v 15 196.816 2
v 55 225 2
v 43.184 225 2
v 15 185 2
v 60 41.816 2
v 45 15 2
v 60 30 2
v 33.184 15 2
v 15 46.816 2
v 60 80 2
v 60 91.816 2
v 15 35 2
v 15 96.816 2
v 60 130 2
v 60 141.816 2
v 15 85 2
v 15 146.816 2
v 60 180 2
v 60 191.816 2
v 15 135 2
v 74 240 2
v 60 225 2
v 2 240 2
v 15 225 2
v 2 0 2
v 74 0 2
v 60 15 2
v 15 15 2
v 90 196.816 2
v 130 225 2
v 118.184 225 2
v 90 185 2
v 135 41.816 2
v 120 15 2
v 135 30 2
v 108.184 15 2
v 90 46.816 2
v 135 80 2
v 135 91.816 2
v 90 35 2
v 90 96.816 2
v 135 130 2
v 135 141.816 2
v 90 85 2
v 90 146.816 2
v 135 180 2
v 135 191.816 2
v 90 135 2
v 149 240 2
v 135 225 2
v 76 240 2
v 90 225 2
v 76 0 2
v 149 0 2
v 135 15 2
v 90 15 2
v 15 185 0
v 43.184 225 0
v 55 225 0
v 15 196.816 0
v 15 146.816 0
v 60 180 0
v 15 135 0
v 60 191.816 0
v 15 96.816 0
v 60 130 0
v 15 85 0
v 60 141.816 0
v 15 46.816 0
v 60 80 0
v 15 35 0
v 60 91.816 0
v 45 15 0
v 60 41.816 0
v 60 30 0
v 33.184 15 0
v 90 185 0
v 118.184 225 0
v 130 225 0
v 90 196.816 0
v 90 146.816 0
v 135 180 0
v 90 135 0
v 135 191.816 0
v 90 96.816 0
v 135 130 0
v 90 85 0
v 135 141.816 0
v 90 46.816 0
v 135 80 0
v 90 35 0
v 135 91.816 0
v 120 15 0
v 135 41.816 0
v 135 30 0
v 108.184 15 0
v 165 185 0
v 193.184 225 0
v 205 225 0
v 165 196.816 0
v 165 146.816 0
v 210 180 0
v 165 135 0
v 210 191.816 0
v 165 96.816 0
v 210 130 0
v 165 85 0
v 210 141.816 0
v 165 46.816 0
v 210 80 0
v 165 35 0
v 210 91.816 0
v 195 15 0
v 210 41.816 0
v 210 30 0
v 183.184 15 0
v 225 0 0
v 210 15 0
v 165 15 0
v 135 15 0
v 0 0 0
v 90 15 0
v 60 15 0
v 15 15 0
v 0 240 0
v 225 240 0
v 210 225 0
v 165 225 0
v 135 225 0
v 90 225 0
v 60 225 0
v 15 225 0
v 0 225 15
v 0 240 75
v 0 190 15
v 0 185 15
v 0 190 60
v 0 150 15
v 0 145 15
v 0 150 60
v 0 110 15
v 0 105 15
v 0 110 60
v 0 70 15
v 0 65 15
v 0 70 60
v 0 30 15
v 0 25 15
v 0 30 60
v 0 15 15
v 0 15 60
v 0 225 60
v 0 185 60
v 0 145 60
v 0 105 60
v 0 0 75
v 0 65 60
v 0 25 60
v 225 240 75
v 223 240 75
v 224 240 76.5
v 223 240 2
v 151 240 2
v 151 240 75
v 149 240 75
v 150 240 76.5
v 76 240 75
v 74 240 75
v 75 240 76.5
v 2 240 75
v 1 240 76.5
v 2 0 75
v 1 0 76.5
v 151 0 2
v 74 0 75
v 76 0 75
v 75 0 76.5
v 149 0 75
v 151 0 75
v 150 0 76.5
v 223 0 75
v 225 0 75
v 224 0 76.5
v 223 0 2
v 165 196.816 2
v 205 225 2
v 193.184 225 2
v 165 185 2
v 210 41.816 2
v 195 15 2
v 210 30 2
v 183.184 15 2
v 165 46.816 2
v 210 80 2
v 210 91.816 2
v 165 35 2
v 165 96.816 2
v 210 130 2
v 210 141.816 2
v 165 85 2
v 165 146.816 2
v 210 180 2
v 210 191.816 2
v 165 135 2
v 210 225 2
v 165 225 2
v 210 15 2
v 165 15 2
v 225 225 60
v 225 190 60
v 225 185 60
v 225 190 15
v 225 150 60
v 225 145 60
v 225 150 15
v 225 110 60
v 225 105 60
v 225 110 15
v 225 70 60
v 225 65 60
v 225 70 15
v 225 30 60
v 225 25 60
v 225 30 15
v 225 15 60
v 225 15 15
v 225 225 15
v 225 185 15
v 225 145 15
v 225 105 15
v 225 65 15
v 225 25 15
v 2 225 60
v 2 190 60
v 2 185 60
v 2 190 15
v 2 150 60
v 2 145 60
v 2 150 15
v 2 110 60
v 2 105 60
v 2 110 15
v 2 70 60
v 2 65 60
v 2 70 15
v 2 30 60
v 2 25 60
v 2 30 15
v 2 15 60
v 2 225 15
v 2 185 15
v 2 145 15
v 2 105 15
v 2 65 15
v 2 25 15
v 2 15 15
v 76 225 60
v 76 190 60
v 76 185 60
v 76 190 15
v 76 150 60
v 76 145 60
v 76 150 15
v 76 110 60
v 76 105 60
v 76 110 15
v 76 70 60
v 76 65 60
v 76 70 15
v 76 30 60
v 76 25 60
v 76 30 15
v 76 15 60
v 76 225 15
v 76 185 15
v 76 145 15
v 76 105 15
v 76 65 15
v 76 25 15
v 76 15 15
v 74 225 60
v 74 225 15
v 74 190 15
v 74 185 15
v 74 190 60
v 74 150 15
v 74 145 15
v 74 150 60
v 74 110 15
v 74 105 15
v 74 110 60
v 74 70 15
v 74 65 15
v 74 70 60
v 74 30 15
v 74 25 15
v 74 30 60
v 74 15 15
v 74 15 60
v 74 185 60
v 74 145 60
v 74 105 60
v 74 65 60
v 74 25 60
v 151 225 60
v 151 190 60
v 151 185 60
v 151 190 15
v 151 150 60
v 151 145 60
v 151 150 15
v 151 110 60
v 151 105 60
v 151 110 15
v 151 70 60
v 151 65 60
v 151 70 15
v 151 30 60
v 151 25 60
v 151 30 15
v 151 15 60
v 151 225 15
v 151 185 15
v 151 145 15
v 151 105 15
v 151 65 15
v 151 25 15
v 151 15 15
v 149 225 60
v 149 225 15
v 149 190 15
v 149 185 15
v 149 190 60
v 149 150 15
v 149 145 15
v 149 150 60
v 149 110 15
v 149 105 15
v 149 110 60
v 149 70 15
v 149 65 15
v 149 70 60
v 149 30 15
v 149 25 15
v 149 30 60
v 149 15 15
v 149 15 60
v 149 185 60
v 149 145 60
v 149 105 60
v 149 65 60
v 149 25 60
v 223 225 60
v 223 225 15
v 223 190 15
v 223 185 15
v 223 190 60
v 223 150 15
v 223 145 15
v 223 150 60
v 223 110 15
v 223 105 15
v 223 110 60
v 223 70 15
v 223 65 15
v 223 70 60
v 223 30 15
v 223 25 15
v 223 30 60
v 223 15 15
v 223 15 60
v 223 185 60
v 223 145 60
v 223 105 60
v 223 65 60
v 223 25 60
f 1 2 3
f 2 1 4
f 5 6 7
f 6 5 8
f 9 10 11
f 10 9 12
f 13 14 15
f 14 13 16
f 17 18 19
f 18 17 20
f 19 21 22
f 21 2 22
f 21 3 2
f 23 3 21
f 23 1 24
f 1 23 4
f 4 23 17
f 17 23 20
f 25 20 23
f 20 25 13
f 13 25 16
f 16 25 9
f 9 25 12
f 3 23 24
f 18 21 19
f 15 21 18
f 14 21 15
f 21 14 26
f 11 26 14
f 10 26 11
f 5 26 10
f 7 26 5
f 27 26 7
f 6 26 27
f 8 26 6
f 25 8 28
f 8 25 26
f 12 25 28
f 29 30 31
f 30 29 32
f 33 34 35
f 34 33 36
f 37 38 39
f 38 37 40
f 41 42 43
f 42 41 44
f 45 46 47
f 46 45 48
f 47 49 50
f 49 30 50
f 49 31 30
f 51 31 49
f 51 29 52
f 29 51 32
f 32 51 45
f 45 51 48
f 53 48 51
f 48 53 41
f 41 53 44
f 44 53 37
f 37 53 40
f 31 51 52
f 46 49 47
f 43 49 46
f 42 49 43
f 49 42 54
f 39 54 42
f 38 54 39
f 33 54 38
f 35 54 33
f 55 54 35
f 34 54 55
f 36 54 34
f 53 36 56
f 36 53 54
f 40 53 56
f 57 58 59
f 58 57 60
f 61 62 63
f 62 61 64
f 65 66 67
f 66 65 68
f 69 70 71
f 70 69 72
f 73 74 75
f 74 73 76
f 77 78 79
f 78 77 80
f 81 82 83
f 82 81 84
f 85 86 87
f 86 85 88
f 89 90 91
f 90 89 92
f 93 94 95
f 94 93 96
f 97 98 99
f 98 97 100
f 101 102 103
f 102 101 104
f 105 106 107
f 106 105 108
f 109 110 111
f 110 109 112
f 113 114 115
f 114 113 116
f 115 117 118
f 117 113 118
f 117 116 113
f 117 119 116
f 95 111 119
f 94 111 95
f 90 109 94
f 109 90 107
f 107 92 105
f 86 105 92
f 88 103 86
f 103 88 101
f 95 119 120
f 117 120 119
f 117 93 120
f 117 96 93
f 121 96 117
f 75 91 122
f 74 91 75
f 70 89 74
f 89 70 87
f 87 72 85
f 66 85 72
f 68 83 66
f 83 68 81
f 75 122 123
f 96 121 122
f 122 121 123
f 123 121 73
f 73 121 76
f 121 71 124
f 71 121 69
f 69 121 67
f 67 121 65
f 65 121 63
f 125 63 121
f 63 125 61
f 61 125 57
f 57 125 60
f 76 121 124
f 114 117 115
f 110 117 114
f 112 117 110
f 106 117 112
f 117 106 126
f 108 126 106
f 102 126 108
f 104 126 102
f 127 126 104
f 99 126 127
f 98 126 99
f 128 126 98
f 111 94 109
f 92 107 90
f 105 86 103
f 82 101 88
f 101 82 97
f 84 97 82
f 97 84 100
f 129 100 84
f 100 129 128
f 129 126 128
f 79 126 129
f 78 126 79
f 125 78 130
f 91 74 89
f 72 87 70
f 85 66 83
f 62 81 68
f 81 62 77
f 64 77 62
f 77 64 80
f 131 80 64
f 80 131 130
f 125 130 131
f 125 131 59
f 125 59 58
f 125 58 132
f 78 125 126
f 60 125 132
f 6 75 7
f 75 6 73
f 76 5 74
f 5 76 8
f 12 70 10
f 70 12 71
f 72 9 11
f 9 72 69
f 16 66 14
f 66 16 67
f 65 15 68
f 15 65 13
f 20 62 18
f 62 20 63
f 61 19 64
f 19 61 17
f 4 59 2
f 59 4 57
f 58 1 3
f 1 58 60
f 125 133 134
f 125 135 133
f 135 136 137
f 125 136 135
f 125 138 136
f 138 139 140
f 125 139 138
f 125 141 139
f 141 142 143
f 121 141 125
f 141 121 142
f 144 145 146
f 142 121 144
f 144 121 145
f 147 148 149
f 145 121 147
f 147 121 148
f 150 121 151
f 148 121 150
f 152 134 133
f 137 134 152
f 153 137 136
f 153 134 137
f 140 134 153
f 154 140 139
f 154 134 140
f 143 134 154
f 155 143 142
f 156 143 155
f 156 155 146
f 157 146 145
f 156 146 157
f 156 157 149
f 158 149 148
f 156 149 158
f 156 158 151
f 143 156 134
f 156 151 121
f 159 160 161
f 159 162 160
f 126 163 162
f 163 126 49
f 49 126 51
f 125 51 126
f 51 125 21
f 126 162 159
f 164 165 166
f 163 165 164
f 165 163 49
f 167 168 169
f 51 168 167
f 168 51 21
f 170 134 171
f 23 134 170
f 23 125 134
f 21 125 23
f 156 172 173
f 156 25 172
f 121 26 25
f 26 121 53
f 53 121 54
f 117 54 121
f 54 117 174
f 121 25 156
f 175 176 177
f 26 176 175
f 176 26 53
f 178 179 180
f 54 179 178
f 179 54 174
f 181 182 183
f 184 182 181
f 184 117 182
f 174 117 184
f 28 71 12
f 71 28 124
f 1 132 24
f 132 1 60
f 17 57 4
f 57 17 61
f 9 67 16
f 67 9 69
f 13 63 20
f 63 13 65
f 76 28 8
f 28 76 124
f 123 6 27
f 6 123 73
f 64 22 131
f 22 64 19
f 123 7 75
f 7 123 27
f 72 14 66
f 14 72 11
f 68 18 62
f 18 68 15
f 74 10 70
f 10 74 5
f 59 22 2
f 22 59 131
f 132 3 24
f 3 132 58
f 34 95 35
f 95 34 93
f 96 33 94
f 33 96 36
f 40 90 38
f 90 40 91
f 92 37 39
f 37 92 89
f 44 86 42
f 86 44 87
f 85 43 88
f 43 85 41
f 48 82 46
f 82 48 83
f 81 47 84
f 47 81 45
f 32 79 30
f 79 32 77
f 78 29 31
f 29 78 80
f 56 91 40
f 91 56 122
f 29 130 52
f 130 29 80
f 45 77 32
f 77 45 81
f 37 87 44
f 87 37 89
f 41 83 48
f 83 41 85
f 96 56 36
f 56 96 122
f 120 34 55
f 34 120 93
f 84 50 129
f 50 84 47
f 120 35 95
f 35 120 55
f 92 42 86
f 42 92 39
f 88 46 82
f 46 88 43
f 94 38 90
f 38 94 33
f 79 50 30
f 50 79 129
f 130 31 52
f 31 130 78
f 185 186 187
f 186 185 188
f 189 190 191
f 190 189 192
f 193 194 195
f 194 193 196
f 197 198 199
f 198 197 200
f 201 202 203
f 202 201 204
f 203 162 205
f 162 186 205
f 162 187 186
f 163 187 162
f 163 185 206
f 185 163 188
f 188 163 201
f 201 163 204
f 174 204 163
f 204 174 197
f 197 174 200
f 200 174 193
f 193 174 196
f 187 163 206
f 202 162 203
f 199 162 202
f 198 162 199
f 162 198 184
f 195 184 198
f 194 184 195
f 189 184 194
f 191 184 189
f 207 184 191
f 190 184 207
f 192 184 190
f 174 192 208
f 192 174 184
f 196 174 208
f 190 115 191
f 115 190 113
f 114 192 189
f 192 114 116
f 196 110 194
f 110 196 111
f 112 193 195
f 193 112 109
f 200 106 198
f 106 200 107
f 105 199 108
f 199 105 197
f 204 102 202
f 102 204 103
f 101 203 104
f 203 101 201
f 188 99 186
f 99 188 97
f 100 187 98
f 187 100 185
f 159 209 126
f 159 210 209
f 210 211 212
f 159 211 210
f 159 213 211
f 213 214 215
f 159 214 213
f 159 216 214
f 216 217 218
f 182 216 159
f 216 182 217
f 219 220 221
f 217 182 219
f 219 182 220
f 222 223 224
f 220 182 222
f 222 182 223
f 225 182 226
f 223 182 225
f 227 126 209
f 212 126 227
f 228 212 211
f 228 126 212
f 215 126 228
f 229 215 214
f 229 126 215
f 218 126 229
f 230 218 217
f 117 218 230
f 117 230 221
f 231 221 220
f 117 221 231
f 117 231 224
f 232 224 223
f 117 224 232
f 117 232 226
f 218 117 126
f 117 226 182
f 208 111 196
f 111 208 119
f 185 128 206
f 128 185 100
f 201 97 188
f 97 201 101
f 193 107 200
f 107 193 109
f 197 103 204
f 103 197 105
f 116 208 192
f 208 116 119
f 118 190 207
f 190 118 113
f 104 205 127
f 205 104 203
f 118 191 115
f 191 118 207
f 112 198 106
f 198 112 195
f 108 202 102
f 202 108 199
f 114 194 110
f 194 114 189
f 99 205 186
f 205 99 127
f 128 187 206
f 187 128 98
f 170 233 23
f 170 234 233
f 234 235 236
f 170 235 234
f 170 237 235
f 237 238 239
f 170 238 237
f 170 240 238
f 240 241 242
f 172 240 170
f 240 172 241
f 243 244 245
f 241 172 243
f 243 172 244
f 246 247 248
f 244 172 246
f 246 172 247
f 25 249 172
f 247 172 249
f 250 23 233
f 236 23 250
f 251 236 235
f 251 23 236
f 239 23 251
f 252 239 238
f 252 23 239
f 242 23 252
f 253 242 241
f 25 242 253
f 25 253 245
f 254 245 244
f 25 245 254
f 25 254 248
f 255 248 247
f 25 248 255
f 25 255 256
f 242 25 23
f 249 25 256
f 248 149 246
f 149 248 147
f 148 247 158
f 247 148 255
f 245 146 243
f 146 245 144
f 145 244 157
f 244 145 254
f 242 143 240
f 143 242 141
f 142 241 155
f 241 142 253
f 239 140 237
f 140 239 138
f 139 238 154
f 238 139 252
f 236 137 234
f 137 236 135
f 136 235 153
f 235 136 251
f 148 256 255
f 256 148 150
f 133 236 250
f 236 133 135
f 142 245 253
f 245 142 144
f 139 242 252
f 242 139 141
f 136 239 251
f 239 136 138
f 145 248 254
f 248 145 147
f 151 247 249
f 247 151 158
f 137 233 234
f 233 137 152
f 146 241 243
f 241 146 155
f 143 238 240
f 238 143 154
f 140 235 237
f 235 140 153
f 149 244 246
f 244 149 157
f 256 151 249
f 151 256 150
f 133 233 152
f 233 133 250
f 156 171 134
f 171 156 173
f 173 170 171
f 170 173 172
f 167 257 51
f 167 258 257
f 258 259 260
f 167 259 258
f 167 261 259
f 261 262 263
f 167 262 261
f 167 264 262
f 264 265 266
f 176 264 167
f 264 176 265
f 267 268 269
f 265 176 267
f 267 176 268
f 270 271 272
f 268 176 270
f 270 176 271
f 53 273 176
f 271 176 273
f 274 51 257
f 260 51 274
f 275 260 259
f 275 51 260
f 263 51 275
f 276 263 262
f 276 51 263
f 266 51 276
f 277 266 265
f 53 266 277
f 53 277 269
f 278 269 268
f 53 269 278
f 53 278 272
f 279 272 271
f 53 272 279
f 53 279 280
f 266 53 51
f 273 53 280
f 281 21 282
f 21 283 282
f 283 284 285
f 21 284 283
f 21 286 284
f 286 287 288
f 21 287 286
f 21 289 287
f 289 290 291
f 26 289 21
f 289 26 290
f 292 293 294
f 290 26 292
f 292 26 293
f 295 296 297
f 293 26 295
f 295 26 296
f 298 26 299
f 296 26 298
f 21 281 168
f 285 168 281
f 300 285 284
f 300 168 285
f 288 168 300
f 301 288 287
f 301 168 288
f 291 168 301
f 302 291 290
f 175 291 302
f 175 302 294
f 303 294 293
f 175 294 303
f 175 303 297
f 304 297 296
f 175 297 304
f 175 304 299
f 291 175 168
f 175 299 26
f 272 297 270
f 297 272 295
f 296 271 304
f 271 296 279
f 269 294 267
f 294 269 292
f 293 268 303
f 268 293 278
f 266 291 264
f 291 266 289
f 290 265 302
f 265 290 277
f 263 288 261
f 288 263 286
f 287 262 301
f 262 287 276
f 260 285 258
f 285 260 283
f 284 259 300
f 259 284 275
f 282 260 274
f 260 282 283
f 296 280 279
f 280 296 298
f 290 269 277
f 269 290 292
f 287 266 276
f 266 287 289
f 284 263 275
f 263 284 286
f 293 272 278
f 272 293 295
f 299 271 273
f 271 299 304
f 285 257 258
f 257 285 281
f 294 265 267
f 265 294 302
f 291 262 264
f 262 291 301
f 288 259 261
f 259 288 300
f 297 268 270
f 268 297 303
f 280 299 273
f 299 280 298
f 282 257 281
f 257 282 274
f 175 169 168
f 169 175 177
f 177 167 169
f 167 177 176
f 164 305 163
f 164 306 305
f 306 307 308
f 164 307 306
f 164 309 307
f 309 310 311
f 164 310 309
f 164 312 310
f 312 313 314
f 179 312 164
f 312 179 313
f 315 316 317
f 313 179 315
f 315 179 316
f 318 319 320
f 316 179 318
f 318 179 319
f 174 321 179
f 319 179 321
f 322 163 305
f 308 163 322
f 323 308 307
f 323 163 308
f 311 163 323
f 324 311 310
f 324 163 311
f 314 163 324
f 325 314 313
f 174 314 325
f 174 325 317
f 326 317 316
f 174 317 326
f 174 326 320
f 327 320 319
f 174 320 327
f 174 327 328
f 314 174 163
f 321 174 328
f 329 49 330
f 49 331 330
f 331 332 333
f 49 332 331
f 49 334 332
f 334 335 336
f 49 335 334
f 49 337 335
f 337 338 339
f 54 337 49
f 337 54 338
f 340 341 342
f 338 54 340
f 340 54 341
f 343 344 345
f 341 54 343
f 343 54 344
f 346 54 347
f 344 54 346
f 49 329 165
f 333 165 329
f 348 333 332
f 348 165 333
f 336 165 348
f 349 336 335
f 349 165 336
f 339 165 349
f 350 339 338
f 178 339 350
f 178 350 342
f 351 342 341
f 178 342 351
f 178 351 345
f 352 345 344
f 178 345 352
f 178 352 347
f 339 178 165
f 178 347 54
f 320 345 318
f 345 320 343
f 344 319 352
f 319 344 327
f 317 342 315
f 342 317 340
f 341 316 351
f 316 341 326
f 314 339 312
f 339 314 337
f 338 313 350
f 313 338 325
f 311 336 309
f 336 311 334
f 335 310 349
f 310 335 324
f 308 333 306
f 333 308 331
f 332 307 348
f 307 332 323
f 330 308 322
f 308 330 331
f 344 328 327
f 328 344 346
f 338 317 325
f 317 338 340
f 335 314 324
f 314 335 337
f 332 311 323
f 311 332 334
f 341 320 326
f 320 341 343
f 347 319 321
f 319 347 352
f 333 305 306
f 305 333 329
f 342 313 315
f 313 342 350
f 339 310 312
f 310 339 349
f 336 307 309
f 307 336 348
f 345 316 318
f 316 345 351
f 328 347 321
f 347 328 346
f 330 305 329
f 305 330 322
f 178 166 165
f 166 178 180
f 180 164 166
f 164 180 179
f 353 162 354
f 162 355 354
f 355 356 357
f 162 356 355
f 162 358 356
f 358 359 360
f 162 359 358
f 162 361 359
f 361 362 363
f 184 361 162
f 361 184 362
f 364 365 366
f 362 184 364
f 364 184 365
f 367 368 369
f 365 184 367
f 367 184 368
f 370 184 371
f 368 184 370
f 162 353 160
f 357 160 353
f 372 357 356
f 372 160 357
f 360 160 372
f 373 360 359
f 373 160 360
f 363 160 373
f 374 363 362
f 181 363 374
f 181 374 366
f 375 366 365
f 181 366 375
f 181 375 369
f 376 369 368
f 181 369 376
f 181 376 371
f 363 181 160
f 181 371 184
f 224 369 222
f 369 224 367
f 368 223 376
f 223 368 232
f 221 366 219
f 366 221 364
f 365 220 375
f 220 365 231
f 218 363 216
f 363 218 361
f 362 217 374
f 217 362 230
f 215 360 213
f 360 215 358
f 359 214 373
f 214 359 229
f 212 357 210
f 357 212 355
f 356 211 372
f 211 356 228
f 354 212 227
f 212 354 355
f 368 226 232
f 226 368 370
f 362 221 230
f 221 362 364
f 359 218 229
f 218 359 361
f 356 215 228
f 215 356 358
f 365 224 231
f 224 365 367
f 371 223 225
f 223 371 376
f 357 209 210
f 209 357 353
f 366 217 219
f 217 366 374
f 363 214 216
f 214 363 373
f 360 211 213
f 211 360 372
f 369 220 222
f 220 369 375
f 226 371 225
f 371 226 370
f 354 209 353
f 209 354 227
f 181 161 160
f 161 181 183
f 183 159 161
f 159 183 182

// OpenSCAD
unit_length = 240;
unit_width = 75;
unit_height = 75;
thickness = 2;

outside_beam_width = 15;

triangle_base = 2;
triangle_height = 1.5;

module inner_bottom_layer() {
    difference() {
        cube([unit_width, unit_length, thickness]);
        union() {
            for(i = [-50:50:(unit_length-20)]) {
                translate([-20, i, 0])
                rotate([0, 0, -45])
                cube([27, 555, thickness]);
            }
        }
    }
}

module bottom_layer() {
    inner_bottom_layer();
    
    cube([outside_beam_width, unit_length, thickness]);
    
    color("green")
    cube([unit_width, outside_beam_width, thickness]);
    
    translate([unit_width - outside_beam_width, 0, 0])
    cube([outside_beam_width, unit_length, thickness]);
    
    color("green")
    translate([0, unit_length - outside_beam_width, 0])
    cube([unit_width, outside_beam_width, thickness]);    
}

module side_wall() {
    cube([thickness, unit_length, outside_beam_width]);
    
    translate([0, 0, unit_height - outside_beam_width])
    cube([thickness, unit_length, outside_beam_width]);
    
    cube([thickness, outside_beam_width, unit_height]);
    
    translate([0, unit_length - outside_beam_width, 0])
    cube([thickness, outside_beam_width, unit_height]);
    
    start = outside_beam_width + 10;
    stop = unit_length - outside_beam_width - 5;
    for(i = [start:40:stop]) {
        translate([0, i, 0])
        cube([thickness, 5, unit_height]);
    }
    
    // top groove
    color("green")
    rotate([-90, 180, 0])
    translate([-triangle_base, unit_height, 0])
    linear_extrude(unit_length)
                polygon(points = [[0, 0], [triangle_base, 0], [triangle_base/2, triangle_height]]);
}

bottom_layer();
side_wall();

translate([unit_width, 0, 0])
bottom_layer();

translate([unit_width - thickness/2, 0, 0])
side_wall();

translate([2*unit_width, 0, 0])
bottom_layer();

translate([2 * unit_width - thickness/2, 0, 0])
side_wall();

translate([3 * unit_width - thickness, 0, 0])
side_wall();
